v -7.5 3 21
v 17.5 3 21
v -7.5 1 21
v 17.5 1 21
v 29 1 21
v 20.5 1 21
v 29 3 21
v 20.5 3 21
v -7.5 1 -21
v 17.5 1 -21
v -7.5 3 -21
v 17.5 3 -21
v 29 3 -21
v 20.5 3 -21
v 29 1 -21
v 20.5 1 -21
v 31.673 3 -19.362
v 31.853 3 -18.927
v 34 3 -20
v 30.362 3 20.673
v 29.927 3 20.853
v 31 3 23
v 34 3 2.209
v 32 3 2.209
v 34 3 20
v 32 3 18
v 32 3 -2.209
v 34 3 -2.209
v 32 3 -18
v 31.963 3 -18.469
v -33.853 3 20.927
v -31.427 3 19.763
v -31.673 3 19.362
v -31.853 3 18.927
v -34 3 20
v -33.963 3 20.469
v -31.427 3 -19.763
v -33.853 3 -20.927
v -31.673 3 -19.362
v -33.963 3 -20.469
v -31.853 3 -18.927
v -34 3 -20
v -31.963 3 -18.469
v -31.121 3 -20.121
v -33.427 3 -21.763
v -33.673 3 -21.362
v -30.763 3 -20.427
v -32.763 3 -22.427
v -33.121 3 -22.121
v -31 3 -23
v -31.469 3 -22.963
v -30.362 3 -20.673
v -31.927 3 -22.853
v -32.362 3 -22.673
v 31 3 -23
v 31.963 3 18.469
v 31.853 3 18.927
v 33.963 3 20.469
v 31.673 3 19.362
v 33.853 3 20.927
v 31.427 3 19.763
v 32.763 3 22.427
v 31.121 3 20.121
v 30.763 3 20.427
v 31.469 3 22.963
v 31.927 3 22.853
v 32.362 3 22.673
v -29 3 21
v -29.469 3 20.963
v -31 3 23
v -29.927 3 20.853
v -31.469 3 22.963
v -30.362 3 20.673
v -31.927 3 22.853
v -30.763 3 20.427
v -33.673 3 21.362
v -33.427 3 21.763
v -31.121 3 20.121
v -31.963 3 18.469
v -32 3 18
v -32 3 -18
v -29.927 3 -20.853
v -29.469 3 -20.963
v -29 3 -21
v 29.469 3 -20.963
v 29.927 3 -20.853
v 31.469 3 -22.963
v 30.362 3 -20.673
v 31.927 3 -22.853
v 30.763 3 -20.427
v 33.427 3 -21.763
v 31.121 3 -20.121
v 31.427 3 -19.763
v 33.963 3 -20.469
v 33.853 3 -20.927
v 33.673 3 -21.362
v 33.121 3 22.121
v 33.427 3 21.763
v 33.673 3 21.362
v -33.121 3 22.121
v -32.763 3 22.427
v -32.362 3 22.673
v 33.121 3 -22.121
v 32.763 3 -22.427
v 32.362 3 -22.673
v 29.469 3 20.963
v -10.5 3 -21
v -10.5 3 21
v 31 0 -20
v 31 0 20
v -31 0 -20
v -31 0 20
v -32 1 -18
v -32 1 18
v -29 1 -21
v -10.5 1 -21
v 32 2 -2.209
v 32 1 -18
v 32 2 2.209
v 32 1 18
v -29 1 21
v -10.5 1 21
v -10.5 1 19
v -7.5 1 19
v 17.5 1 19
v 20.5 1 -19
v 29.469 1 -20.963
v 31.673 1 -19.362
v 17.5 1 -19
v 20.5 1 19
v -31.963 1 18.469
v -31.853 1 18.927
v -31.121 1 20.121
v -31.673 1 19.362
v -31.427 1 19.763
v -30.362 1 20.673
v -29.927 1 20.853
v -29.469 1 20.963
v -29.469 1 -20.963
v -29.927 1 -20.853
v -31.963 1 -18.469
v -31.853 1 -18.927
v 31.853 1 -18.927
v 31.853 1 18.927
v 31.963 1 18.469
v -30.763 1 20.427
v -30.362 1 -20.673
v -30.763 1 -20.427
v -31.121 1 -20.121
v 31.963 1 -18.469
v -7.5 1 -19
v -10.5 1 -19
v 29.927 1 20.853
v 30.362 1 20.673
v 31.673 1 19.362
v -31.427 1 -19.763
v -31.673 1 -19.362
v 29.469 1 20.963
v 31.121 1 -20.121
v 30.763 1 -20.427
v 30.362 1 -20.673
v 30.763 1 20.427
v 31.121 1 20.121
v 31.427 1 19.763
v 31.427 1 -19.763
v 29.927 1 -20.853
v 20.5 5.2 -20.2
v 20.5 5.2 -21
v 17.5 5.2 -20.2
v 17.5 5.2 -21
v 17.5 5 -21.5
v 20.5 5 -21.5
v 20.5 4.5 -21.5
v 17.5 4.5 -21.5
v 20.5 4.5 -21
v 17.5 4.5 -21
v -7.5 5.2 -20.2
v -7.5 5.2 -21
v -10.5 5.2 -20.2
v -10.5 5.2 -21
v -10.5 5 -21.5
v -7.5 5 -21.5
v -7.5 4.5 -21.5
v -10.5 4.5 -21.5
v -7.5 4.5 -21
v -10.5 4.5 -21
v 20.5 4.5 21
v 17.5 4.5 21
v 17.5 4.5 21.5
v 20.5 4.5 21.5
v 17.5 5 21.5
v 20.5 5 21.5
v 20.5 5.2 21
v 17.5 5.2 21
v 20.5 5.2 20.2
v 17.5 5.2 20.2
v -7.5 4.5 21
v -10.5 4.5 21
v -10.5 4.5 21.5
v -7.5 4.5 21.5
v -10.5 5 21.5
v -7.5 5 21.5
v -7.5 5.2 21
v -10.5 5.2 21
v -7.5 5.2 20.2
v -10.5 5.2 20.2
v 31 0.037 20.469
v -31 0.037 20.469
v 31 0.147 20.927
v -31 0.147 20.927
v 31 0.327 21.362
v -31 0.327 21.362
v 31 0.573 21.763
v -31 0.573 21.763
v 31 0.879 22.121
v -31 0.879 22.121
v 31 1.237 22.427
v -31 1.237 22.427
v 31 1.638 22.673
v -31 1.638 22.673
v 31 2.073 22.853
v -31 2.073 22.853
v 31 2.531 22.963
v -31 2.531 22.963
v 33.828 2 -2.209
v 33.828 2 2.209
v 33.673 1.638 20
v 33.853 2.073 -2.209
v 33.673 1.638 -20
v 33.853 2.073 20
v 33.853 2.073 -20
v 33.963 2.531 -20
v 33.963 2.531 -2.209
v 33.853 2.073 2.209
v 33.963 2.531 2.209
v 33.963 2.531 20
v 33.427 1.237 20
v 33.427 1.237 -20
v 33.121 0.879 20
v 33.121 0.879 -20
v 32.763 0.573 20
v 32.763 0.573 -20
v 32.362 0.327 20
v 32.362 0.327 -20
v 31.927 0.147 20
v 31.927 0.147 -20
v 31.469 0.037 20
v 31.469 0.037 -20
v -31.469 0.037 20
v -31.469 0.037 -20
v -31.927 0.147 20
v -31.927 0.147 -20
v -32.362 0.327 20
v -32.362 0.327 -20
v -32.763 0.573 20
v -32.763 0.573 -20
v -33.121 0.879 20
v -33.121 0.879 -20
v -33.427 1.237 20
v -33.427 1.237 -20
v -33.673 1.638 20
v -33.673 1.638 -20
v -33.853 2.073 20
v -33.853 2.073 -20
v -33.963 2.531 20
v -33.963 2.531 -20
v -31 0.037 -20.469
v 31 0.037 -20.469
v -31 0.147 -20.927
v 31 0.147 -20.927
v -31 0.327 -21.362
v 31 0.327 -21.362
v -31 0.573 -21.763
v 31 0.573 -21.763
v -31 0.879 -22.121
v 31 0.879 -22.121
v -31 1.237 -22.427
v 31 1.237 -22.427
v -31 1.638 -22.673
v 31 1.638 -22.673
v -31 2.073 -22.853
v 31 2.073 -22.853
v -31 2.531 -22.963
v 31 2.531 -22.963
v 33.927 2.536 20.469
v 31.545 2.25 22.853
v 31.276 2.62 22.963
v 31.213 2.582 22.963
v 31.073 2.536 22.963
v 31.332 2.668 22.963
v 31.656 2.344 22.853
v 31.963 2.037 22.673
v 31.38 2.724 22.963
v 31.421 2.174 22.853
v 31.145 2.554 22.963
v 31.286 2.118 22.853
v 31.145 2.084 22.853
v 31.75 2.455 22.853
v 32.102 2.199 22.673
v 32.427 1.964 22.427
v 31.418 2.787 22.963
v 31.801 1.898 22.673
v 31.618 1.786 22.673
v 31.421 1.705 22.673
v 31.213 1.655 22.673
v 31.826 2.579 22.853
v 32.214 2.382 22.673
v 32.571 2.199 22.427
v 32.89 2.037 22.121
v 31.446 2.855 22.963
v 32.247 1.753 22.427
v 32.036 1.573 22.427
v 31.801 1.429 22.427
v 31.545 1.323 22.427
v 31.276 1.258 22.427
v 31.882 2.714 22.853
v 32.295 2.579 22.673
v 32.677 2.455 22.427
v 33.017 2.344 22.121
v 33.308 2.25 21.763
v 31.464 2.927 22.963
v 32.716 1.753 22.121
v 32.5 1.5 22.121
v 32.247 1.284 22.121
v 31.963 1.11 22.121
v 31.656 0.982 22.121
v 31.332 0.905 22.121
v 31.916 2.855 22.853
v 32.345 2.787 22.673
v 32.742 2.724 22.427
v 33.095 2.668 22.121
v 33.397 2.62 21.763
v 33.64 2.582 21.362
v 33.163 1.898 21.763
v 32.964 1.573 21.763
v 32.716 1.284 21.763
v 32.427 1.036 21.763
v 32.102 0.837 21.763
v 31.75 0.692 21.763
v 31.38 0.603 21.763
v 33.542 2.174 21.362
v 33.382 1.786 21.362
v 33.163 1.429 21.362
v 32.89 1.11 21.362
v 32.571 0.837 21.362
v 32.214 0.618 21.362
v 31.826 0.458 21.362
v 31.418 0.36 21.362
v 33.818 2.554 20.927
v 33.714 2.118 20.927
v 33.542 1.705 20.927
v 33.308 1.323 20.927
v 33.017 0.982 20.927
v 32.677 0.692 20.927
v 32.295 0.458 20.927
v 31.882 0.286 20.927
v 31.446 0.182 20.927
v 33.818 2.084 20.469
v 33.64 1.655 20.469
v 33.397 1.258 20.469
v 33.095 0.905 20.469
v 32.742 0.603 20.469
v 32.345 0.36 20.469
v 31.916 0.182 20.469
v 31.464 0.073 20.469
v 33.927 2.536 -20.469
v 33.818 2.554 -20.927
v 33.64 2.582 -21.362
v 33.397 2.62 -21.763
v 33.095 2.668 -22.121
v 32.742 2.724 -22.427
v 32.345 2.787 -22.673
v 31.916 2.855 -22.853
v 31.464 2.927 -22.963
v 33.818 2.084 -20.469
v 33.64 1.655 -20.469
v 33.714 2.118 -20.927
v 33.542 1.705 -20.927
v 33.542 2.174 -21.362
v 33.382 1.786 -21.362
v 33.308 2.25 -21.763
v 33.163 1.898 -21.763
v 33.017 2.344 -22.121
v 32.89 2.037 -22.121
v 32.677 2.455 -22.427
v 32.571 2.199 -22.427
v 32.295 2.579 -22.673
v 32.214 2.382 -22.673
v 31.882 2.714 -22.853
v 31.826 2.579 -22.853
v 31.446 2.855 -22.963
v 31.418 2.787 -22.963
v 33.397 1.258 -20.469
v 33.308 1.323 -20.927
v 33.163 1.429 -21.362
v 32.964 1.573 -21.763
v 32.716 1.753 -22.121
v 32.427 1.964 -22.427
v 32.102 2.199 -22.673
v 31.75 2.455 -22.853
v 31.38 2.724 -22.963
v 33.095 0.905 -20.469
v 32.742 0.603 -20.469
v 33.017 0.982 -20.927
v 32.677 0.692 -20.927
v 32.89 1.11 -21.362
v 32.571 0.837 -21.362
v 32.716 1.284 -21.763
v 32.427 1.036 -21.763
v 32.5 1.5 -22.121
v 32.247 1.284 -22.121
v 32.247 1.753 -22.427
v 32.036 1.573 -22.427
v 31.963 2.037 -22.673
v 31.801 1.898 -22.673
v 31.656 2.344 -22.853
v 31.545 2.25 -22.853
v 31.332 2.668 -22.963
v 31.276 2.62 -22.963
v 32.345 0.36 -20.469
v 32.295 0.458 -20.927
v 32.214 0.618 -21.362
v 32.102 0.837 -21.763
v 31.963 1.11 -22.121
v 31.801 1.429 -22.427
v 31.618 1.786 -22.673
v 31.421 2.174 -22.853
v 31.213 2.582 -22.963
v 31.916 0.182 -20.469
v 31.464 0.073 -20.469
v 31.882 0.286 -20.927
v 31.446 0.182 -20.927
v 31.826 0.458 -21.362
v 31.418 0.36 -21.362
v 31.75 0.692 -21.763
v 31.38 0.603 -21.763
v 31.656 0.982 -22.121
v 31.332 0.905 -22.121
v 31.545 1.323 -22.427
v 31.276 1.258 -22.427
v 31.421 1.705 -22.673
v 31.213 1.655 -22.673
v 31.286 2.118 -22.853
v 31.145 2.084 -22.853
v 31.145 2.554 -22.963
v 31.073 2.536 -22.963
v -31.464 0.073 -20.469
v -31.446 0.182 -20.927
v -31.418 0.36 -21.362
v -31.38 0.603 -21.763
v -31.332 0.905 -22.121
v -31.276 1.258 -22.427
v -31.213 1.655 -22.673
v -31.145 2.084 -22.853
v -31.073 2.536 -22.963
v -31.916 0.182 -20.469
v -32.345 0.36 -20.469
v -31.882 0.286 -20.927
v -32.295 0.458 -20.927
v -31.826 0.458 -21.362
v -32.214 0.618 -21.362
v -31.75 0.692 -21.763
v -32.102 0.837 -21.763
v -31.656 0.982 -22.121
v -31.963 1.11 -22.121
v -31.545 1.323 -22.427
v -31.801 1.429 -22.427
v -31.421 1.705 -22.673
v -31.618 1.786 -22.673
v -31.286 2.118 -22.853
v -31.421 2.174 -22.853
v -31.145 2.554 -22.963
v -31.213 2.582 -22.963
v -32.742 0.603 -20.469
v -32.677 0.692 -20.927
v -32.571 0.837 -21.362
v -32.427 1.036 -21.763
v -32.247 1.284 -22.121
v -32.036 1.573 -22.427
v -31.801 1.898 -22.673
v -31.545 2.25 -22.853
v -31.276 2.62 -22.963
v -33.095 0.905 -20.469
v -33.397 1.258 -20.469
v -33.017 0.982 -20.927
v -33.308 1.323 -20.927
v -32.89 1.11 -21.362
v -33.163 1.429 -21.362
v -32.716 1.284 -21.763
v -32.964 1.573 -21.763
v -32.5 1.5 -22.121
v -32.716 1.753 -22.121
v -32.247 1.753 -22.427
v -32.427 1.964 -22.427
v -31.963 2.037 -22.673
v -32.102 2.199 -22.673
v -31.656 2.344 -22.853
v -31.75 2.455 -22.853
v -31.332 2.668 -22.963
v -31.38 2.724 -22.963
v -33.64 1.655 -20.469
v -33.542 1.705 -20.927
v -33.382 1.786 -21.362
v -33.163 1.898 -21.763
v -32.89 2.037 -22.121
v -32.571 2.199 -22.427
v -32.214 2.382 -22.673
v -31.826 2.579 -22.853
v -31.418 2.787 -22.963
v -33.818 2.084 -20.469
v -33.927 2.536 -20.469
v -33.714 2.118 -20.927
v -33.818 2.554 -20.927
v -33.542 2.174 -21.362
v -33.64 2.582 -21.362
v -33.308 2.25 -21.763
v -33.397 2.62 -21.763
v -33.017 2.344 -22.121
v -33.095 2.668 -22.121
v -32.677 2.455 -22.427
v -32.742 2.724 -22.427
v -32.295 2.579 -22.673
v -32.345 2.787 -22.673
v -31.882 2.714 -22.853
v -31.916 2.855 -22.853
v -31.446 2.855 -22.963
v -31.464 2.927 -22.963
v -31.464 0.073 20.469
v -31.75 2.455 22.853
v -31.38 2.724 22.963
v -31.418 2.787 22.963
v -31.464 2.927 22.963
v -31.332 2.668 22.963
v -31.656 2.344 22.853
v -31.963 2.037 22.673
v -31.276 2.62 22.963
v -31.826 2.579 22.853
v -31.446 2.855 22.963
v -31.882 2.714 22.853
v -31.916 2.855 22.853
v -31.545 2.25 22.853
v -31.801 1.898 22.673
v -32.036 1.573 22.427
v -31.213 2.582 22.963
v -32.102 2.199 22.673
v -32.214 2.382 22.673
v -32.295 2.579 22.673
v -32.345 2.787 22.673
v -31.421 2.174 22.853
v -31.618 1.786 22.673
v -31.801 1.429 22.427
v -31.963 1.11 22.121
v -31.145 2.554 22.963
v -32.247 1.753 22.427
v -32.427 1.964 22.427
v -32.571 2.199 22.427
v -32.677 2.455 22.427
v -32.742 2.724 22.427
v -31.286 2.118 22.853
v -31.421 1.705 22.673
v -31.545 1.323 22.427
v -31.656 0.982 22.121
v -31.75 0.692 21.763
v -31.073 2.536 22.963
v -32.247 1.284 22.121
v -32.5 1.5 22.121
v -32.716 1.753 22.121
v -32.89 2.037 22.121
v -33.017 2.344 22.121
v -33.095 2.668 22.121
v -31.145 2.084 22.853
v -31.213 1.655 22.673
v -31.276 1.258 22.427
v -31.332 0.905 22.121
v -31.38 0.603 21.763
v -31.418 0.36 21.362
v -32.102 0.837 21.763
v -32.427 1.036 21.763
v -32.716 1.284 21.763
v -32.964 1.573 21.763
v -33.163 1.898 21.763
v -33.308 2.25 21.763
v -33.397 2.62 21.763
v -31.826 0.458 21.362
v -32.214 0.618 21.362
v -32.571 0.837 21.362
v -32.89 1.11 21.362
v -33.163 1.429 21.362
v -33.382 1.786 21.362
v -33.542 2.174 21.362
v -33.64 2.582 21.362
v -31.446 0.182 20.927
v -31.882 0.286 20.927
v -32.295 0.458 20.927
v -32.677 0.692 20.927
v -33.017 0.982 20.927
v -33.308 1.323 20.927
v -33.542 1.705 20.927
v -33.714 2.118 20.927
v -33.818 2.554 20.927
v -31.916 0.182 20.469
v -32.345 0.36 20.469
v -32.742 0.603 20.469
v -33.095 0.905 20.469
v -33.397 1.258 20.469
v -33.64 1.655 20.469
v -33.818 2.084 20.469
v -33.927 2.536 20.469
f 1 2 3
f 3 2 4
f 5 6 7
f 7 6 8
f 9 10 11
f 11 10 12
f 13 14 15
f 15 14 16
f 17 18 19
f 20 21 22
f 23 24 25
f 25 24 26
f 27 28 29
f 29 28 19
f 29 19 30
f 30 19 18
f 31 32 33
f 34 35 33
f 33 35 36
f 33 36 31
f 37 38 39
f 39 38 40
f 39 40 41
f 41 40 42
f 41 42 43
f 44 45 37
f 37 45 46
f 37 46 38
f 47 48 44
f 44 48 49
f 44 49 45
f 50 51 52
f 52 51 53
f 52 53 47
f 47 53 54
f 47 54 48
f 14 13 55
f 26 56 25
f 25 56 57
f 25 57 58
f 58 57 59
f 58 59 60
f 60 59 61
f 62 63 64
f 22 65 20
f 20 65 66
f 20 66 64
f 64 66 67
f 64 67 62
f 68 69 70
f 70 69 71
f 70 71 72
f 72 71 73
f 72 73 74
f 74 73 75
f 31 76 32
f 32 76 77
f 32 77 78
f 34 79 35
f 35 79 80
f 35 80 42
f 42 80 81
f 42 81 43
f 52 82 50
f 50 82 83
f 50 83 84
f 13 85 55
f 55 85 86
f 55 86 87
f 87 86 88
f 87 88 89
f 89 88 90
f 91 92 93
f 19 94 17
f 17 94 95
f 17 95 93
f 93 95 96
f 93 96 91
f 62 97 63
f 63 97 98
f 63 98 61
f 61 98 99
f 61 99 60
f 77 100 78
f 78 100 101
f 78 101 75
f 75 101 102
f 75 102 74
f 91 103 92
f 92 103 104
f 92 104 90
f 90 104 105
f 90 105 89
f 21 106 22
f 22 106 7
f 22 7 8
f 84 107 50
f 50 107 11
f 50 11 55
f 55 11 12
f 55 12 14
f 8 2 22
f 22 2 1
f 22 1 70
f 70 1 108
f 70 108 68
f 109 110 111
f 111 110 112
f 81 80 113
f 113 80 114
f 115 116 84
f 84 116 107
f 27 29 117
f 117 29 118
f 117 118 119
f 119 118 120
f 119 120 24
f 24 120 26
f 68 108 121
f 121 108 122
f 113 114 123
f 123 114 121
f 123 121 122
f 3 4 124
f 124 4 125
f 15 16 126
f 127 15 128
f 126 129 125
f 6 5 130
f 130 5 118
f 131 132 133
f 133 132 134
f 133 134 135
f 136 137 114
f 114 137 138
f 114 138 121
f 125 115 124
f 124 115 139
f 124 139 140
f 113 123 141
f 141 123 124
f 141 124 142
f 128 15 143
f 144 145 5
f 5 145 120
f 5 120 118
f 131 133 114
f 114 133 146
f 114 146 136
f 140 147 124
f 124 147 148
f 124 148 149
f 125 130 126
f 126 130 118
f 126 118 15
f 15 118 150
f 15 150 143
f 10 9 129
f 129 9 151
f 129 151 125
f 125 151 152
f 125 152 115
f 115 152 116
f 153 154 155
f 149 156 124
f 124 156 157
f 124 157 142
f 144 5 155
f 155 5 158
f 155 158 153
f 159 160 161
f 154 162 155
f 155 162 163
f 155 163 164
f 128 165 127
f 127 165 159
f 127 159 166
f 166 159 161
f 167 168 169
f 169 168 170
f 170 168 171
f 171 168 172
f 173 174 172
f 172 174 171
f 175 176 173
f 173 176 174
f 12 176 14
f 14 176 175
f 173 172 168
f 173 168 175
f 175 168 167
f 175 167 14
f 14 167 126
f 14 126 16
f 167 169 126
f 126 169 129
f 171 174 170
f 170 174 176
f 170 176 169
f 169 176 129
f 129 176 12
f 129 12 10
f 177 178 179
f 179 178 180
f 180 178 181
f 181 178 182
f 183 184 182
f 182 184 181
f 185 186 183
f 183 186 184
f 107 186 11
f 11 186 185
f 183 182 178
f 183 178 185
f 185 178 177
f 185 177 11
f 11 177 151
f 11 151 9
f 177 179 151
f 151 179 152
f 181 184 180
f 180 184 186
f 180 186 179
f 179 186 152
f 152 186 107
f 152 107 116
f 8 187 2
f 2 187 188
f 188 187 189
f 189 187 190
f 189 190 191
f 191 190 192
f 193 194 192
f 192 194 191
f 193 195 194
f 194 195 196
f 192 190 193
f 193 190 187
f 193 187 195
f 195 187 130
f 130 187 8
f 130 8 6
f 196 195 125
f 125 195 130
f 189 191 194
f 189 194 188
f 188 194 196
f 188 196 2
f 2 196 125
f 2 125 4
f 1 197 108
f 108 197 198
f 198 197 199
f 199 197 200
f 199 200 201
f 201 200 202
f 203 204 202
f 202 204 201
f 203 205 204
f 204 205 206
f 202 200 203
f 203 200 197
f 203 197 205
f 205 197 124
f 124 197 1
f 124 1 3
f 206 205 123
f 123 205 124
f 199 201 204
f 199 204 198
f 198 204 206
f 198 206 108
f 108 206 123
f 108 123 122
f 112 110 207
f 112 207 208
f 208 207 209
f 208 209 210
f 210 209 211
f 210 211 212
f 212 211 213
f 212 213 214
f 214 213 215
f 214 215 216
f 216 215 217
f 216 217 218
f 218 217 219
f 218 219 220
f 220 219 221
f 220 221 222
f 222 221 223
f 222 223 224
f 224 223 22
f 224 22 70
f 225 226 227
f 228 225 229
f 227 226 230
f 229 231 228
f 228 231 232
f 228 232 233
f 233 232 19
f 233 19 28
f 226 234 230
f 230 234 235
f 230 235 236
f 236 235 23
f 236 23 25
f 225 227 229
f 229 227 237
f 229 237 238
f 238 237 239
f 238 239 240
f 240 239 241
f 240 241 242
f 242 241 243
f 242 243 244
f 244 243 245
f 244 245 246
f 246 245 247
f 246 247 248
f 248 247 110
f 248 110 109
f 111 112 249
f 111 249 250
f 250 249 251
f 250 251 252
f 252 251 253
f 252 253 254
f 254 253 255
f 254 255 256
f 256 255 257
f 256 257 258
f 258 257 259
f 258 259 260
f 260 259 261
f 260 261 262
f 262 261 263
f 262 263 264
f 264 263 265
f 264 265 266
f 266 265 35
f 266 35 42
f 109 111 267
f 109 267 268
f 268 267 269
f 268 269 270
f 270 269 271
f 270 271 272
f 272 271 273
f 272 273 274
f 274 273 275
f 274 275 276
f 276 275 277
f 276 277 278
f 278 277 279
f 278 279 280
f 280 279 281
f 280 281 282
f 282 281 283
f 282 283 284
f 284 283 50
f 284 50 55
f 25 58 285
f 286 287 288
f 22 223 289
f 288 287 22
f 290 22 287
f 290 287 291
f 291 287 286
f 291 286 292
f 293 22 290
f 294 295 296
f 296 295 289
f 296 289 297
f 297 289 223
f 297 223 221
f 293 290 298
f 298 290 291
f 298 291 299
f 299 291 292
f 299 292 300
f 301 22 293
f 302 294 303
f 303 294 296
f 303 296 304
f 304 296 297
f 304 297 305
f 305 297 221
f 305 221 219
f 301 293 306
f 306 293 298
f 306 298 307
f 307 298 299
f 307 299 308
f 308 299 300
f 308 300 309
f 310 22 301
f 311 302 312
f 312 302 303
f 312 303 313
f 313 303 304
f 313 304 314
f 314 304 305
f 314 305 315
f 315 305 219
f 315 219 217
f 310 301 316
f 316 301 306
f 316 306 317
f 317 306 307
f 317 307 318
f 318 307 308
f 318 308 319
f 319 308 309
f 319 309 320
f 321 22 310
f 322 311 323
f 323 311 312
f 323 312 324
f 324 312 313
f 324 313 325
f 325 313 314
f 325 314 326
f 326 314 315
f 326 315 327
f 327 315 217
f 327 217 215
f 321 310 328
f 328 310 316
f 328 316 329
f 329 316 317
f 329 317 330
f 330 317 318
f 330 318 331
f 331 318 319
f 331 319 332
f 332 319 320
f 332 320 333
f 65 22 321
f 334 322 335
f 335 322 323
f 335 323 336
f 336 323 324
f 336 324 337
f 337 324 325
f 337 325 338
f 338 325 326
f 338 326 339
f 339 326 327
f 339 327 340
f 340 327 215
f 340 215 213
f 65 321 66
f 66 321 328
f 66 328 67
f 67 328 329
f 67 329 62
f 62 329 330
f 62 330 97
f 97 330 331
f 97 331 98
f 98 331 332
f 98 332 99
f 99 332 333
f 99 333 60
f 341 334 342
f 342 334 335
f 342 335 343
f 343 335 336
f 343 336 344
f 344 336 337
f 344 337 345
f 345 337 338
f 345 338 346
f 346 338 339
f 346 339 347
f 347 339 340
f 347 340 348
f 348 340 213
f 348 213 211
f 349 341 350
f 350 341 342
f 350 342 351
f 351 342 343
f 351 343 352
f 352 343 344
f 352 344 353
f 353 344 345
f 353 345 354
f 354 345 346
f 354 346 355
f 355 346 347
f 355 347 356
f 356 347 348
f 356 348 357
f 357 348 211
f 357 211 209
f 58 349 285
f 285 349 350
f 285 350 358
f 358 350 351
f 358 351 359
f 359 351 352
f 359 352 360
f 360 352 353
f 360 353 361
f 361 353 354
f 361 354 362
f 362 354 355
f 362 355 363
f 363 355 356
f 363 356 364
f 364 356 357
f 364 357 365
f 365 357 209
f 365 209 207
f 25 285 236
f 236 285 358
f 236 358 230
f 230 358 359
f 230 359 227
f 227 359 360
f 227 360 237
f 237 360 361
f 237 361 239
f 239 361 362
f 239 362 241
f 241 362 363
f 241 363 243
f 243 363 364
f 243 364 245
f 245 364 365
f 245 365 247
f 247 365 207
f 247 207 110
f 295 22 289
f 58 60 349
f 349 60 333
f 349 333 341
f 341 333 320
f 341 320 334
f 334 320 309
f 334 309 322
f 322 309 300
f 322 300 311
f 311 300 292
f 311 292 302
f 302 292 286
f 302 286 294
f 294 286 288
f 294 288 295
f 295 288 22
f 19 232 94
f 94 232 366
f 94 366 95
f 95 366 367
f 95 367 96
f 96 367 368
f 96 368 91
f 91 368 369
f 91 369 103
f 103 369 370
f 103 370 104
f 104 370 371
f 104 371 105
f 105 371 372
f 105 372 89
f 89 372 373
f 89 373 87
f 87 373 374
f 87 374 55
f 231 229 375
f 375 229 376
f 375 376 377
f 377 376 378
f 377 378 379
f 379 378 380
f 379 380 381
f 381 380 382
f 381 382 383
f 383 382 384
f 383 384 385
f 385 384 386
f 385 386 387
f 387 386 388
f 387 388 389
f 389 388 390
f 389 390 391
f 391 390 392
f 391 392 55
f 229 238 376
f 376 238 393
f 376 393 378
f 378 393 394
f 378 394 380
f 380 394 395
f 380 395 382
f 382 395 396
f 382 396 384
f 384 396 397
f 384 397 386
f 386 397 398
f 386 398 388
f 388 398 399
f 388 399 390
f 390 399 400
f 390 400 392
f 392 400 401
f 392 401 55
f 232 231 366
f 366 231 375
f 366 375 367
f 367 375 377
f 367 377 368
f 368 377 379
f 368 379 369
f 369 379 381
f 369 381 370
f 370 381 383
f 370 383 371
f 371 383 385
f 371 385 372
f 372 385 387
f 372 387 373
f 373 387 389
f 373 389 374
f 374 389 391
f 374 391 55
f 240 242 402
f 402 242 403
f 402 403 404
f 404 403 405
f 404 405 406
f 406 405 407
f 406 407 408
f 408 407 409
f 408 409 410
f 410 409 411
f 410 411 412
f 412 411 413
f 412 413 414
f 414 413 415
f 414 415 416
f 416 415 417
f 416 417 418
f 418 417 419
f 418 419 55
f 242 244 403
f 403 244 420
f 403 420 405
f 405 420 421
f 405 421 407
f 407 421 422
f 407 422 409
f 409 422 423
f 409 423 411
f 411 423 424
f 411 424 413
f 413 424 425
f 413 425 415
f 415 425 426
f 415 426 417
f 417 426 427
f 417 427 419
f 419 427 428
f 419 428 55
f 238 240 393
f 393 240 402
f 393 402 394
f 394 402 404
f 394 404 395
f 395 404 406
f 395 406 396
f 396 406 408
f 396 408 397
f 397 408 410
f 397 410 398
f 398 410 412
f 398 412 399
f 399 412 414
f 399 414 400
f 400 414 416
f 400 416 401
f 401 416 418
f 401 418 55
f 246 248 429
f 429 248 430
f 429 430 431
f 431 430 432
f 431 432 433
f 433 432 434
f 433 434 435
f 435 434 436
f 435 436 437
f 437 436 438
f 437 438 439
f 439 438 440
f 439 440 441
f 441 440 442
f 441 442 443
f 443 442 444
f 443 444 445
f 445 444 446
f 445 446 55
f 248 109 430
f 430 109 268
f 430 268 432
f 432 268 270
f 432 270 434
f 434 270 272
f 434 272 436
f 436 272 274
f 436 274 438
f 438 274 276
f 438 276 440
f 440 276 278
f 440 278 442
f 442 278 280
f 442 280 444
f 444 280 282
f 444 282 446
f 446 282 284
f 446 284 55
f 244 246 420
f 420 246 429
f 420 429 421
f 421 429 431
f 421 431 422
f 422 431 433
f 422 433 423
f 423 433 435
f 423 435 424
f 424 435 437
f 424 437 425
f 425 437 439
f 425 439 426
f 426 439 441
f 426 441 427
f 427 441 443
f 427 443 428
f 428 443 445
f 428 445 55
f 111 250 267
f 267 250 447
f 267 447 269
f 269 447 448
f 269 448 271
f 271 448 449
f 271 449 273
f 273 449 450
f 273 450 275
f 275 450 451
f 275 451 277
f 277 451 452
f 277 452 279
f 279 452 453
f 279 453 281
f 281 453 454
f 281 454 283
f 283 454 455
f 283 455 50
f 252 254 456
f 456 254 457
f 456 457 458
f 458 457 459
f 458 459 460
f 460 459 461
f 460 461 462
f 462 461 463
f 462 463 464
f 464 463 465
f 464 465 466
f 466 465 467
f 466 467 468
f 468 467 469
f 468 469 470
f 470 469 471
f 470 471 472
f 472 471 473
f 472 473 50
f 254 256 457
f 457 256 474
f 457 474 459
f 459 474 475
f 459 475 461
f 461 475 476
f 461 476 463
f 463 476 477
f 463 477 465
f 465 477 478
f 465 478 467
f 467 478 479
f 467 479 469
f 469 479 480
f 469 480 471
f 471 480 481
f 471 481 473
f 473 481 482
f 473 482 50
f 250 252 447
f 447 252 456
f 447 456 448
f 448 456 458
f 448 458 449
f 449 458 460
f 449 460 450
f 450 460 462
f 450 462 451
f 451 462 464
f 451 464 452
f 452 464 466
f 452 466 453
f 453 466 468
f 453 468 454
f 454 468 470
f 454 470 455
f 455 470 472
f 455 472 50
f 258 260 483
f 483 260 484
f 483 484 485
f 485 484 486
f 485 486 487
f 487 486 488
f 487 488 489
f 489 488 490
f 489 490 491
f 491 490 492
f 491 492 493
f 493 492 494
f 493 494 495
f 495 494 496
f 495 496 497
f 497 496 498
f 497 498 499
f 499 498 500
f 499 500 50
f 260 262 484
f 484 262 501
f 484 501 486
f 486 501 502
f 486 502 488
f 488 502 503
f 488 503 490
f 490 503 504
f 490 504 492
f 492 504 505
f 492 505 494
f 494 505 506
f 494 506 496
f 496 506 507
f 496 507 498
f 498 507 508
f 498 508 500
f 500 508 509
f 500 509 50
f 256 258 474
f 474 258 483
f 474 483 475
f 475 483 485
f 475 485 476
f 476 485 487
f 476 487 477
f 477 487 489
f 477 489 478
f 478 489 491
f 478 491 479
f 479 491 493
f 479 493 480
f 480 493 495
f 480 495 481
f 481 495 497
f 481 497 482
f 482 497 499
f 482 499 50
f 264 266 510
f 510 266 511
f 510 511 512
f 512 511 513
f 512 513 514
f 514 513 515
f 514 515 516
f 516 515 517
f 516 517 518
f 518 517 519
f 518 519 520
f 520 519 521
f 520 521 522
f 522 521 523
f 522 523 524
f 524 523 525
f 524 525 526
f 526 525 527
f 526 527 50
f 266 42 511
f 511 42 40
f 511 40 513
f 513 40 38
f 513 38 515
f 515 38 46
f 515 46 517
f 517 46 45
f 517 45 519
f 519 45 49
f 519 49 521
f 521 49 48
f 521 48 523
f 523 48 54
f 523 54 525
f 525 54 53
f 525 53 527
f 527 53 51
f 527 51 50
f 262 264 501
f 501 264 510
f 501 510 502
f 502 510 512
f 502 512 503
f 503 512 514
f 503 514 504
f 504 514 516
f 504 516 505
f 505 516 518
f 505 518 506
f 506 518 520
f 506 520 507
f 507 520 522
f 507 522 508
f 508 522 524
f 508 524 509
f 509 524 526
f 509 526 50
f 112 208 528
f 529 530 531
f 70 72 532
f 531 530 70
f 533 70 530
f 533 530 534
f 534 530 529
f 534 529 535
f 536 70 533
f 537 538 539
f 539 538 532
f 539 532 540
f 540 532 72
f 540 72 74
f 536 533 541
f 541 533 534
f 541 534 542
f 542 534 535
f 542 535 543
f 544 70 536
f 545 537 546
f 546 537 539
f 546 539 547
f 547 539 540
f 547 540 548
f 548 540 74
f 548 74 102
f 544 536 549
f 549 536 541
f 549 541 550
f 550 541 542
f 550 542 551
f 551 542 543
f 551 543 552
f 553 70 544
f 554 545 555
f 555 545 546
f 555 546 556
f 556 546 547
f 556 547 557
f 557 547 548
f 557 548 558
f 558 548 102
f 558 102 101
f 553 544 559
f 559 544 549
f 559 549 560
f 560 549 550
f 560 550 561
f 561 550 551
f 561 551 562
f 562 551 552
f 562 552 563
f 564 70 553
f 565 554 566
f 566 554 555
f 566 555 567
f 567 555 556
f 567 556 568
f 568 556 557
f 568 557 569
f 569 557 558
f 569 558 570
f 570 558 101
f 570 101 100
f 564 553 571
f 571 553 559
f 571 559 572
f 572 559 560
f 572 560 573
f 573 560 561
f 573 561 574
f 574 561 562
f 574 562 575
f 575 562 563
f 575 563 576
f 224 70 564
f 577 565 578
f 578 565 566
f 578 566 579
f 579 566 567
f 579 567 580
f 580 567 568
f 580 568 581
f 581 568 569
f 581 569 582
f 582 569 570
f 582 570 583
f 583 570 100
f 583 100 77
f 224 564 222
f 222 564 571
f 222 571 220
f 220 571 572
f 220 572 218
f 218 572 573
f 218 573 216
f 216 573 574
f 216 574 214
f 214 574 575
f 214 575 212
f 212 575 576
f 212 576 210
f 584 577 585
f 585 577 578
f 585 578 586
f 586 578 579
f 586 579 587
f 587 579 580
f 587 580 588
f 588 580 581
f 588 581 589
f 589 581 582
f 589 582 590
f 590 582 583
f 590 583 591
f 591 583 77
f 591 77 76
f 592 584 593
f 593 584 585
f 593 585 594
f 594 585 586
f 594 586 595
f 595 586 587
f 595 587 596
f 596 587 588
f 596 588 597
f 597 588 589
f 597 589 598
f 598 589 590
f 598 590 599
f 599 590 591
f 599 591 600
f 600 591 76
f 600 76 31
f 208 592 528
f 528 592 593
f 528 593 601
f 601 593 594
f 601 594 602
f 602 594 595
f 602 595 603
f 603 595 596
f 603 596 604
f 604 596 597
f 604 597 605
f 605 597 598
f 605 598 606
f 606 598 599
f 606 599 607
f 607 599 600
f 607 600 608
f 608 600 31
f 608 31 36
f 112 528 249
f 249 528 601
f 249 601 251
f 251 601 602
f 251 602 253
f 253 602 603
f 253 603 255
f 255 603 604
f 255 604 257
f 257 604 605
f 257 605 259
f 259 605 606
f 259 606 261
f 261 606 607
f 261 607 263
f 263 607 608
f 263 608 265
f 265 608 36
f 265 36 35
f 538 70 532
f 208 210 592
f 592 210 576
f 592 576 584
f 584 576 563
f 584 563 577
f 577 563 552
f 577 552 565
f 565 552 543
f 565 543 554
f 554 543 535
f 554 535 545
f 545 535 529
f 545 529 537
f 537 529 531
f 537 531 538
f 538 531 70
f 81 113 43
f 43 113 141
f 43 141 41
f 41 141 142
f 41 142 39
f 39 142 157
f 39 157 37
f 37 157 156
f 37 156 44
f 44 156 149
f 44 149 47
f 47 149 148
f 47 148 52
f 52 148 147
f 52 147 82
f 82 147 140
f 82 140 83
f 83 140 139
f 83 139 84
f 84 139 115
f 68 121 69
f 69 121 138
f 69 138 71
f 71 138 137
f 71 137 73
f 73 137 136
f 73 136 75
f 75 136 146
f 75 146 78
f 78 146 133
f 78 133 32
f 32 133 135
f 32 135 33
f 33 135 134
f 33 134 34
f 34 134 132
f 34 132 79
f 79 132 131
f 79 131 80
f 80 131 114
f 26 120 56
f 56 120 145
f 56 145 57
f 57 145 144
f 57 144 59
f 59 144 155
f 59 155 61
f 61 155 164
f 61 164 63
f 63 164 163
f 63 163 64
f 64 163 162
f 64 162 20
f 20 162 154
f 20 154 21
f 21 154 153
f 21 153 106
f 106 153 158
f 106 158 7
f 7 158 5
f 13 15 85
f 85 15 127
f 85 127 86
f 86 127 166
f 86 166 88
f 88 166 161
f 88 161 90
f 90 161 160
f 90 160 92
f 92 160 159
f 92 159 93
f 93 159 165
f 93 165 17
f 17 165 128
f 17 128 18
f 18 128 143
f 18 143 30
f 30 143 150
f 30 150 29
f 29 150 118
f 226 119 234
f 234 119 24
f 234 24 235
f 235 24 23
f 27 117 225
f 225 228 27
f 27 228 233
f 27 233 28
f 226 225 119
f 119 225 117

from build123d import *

# Parameters (mm, degrees)
SKETCH1_W           = 68
SKETCH1_H           = 46
BOSS_EXTRUDE1_DEPTH = 3
SKETCH2_W           = 64
SKETCH2_H           = 42
CUT_EXTRUDE1_DEPTH  = 2
SNAP_START          = 17.5
SNAP_HOOK1_DEPTH    = 3
SNAP_START_2        = -10.5
SNAP_HOOK2_DEPTH    = 3
FILLET3_R           = 3
FILLET4_R           = 3
FILLET5_R           = 3
SKETCH4_W           = 2.752193097
SKETCH4_H           = 4.417994182
CUT_EXTRUDE2_DEPTH  = 1


# Read off the part's stored shape, not the designer's step: Snap Hook1, Snap Hook2
# Some blends are built 0.0001 mm under size
with BuildPart() as part:
    # Sketch1 → Boss-Extrude1 (new body)
    with BuildSketch(Plane(origin=(0, 0, 0), x_dir=(1, 0, 0), z_dir=(0, 1, 0))):
        Rectangle(SKETCH1_W, SKETCH1_H)
    extrude(amount=BOSS_EXTRUDE1_DEPTH)

    # Sketch2 → Cut-Extrude1 (cut)
    with BuildSketch(Plane(origin=(0, 3, 0), x_dir=(1, 0, 0), z_dir=(0, 1, 0))):
        Rectangle(SKETCH2_W, SKETCH2_H)
    extrude(amount=-CUT_EXTRUDE1_DEPTH, mode=Mode.SUBTRACT)

    # Snap Hook1 outline → Snap Hook1 (add)
    with BuildSketch(Plane.YZ.offset(SNAP_START)):
        Polygon((5, -21.5), (5.2, -21), (5.2, -20.2), (1, -19), (1, -21), (4.5, -21), (4.5, -21.5), align=None)
    snap_hook1 = extrude(amount=SNAP_HOOK1_DEPTH)

    # Snap Hook2 outline → Snap Hook2 (add)
    with BuildSketch(Plane.YZ.offset(SNAP_START_2)):
        Polygon((5, -21.5), (5.2, -21), (5.2, -20.2), (1, -19), (1, -21), (4.5, -21), (4.5, -21.5), align=None)
    snap_hook2 = extrude(amount=SNAP_HOOK2_DEPTH)

    # Mirror1: Snap Hook1, Snap Hook2 across plane
    add(snap_hook1.mirror(Plane.XY))
    add(snap_hook2.mirror(Plane.XY))

    # Fillet3
    fillet3_edges = [part.edges().sort_by_distance(p)[0] for p in [
        (0, 0, -23),
        (34, 0, 0),
        (0, 0, 23),
        (-34, 0, 0),
    ]]
    fillet(fillet3_edges, radius=FILLET3_R - 0.0001)  # a hair under: the kernel refuses the full size

    # Fillet4
    # the kernel refuses this fillet: 3 mm, written as the material it takes off along each edge
    with BuildSketch(Plane(origin=(31, 0, 20), x_dir=(1, 0, 0), z_dir=(0, 0, -1))) as fillet4_piece_1:
        with BuildLine():
            CenterArc((0.0001, -2.9999), 2.9999, 0, 90)
            Line((3, -2.9999), (3, 0))
            Line((3, 0), (0.0001, 0))
        make_face()
    revolve(axis=Axis((31, 0, 20), (0, -1, 0)), revolution_arc=90, mode=Mode.SUBTRACT)
    with BuildSketch(Plane(origin=(-31, 0, 20), x_dir=(0, 0, 1), z_dir=(1, 0, 0))) as fillet4_piece_2:
        with BuildLine():
            CenterArc((0.0001, -2.9999), 2.9999, 0, 90)
            Line((3, -2.9999), (3, 0))
            Line((3, 0), (0.0001, 0))
        make_face()
    revolve(axis=Axis((-31, 0, 20), (0, -1, 0)), revolution_arc=90, mode=Mode.SUBTRACT)
    with BuildSketch(Plane(origin=(31, 0, -20), x_dir=(0, 0, -1), z_dir=(-1, 0, 0))) as fillet4_piece_3:
        with BuildLine():
            CenterArc((0.0001, -2.9999), 2.9999, 0, 90)
            Line((3, -2.9999), (3, 0))
            Line((3, 0), (0.0001, 0))
        make_face()
    revolve(axis=Axis((31, 0, -20), (0, -1, 0)), revolution_arc=90, mode=Mode.SUBTRACT)
    with BuildSketch(Plane(origin=(-31, 0, -20), x_dir=(-1, 0, 0), z_dir=(0, 0, 1))) as fillet4_piece_4:
        with BuildLine():
            CenterArc((0.0001, -2.9999), 2.9999, 0, 90)
            Line((3, -2.9999), (3, 0))
            Line((3, 0), (0.0001, 0))
        make_face()
    revolve(axis=Axis((-31, 0, -20), (0, -1, 0)), revolution_arc=90, mode=Mode.SUBTRACT)
    with BuildSketch(Plane(origin=(-34, 0, -23), x_dir=(0, 0, 1), z_dir=(0, 1, 0)), Plane(origin=(-34, 0, 23), x_dir=(1, 0, 0), z_dir=(0, 1, 0))) as fillet4_piece_5:
        with BuildLine():
            CenterArc((FILLET4_R, FILLET4_R), FILLET4_R, 180, 90)
            Line((0, FILLET4_R), (0, 0))
            Line((0, 0), (FILLET4_R, 0))
        make_face()
    extrude(amount=10.5, mode=Mode.SUBTRACT)
    with BuildSketch(Plane(origin=(34, 0, -23), x_dir=(0, 0, 1), z_dir=(0, 1, 0)), Plane(origin=(34, 0, 23), x_dir=(-1, 0, 0), z_dir=(0, 1, 0))) as fillet4_piece_6:
        with BuildLine():
            CenterArc((FILLET4_R, -FILLET4_R), FILLET4_R, 90, 90)
            Line((0, -FILLET4_R), (0, 0))
            Line((0, 0), (FILLET4_R, 0))
        make_face()
    extrude(amount=10.5, mode=Mode.SUBTRACT)

    # Fillet5
    fillet5_edges = [part.edges().sort_by_distance(p)[0] for p in [
        (-32, 2, 21),
        (-32, 2, -21),
        (32, 2, -21),
        (32, 2, 21),
    ]]
    fillet(fillet5_edges, radius=FILLET5_R)

    # Sketch4 → Cut-Extrude2 (cut)
    with BuildSketch(Plane(origin=(0, 3, 0), x_dir=(1, 0, 0), z_dir=(0, 1, 0))):
        with Locations((33.0987433, 0)):
            Rectangle(SKETCH4_W, SKETCH4_H)
    extrude(amount=-CUT_EXTRUDE2_DEPTH, mode=Mode.SUBTRACT)


solid = part.part
